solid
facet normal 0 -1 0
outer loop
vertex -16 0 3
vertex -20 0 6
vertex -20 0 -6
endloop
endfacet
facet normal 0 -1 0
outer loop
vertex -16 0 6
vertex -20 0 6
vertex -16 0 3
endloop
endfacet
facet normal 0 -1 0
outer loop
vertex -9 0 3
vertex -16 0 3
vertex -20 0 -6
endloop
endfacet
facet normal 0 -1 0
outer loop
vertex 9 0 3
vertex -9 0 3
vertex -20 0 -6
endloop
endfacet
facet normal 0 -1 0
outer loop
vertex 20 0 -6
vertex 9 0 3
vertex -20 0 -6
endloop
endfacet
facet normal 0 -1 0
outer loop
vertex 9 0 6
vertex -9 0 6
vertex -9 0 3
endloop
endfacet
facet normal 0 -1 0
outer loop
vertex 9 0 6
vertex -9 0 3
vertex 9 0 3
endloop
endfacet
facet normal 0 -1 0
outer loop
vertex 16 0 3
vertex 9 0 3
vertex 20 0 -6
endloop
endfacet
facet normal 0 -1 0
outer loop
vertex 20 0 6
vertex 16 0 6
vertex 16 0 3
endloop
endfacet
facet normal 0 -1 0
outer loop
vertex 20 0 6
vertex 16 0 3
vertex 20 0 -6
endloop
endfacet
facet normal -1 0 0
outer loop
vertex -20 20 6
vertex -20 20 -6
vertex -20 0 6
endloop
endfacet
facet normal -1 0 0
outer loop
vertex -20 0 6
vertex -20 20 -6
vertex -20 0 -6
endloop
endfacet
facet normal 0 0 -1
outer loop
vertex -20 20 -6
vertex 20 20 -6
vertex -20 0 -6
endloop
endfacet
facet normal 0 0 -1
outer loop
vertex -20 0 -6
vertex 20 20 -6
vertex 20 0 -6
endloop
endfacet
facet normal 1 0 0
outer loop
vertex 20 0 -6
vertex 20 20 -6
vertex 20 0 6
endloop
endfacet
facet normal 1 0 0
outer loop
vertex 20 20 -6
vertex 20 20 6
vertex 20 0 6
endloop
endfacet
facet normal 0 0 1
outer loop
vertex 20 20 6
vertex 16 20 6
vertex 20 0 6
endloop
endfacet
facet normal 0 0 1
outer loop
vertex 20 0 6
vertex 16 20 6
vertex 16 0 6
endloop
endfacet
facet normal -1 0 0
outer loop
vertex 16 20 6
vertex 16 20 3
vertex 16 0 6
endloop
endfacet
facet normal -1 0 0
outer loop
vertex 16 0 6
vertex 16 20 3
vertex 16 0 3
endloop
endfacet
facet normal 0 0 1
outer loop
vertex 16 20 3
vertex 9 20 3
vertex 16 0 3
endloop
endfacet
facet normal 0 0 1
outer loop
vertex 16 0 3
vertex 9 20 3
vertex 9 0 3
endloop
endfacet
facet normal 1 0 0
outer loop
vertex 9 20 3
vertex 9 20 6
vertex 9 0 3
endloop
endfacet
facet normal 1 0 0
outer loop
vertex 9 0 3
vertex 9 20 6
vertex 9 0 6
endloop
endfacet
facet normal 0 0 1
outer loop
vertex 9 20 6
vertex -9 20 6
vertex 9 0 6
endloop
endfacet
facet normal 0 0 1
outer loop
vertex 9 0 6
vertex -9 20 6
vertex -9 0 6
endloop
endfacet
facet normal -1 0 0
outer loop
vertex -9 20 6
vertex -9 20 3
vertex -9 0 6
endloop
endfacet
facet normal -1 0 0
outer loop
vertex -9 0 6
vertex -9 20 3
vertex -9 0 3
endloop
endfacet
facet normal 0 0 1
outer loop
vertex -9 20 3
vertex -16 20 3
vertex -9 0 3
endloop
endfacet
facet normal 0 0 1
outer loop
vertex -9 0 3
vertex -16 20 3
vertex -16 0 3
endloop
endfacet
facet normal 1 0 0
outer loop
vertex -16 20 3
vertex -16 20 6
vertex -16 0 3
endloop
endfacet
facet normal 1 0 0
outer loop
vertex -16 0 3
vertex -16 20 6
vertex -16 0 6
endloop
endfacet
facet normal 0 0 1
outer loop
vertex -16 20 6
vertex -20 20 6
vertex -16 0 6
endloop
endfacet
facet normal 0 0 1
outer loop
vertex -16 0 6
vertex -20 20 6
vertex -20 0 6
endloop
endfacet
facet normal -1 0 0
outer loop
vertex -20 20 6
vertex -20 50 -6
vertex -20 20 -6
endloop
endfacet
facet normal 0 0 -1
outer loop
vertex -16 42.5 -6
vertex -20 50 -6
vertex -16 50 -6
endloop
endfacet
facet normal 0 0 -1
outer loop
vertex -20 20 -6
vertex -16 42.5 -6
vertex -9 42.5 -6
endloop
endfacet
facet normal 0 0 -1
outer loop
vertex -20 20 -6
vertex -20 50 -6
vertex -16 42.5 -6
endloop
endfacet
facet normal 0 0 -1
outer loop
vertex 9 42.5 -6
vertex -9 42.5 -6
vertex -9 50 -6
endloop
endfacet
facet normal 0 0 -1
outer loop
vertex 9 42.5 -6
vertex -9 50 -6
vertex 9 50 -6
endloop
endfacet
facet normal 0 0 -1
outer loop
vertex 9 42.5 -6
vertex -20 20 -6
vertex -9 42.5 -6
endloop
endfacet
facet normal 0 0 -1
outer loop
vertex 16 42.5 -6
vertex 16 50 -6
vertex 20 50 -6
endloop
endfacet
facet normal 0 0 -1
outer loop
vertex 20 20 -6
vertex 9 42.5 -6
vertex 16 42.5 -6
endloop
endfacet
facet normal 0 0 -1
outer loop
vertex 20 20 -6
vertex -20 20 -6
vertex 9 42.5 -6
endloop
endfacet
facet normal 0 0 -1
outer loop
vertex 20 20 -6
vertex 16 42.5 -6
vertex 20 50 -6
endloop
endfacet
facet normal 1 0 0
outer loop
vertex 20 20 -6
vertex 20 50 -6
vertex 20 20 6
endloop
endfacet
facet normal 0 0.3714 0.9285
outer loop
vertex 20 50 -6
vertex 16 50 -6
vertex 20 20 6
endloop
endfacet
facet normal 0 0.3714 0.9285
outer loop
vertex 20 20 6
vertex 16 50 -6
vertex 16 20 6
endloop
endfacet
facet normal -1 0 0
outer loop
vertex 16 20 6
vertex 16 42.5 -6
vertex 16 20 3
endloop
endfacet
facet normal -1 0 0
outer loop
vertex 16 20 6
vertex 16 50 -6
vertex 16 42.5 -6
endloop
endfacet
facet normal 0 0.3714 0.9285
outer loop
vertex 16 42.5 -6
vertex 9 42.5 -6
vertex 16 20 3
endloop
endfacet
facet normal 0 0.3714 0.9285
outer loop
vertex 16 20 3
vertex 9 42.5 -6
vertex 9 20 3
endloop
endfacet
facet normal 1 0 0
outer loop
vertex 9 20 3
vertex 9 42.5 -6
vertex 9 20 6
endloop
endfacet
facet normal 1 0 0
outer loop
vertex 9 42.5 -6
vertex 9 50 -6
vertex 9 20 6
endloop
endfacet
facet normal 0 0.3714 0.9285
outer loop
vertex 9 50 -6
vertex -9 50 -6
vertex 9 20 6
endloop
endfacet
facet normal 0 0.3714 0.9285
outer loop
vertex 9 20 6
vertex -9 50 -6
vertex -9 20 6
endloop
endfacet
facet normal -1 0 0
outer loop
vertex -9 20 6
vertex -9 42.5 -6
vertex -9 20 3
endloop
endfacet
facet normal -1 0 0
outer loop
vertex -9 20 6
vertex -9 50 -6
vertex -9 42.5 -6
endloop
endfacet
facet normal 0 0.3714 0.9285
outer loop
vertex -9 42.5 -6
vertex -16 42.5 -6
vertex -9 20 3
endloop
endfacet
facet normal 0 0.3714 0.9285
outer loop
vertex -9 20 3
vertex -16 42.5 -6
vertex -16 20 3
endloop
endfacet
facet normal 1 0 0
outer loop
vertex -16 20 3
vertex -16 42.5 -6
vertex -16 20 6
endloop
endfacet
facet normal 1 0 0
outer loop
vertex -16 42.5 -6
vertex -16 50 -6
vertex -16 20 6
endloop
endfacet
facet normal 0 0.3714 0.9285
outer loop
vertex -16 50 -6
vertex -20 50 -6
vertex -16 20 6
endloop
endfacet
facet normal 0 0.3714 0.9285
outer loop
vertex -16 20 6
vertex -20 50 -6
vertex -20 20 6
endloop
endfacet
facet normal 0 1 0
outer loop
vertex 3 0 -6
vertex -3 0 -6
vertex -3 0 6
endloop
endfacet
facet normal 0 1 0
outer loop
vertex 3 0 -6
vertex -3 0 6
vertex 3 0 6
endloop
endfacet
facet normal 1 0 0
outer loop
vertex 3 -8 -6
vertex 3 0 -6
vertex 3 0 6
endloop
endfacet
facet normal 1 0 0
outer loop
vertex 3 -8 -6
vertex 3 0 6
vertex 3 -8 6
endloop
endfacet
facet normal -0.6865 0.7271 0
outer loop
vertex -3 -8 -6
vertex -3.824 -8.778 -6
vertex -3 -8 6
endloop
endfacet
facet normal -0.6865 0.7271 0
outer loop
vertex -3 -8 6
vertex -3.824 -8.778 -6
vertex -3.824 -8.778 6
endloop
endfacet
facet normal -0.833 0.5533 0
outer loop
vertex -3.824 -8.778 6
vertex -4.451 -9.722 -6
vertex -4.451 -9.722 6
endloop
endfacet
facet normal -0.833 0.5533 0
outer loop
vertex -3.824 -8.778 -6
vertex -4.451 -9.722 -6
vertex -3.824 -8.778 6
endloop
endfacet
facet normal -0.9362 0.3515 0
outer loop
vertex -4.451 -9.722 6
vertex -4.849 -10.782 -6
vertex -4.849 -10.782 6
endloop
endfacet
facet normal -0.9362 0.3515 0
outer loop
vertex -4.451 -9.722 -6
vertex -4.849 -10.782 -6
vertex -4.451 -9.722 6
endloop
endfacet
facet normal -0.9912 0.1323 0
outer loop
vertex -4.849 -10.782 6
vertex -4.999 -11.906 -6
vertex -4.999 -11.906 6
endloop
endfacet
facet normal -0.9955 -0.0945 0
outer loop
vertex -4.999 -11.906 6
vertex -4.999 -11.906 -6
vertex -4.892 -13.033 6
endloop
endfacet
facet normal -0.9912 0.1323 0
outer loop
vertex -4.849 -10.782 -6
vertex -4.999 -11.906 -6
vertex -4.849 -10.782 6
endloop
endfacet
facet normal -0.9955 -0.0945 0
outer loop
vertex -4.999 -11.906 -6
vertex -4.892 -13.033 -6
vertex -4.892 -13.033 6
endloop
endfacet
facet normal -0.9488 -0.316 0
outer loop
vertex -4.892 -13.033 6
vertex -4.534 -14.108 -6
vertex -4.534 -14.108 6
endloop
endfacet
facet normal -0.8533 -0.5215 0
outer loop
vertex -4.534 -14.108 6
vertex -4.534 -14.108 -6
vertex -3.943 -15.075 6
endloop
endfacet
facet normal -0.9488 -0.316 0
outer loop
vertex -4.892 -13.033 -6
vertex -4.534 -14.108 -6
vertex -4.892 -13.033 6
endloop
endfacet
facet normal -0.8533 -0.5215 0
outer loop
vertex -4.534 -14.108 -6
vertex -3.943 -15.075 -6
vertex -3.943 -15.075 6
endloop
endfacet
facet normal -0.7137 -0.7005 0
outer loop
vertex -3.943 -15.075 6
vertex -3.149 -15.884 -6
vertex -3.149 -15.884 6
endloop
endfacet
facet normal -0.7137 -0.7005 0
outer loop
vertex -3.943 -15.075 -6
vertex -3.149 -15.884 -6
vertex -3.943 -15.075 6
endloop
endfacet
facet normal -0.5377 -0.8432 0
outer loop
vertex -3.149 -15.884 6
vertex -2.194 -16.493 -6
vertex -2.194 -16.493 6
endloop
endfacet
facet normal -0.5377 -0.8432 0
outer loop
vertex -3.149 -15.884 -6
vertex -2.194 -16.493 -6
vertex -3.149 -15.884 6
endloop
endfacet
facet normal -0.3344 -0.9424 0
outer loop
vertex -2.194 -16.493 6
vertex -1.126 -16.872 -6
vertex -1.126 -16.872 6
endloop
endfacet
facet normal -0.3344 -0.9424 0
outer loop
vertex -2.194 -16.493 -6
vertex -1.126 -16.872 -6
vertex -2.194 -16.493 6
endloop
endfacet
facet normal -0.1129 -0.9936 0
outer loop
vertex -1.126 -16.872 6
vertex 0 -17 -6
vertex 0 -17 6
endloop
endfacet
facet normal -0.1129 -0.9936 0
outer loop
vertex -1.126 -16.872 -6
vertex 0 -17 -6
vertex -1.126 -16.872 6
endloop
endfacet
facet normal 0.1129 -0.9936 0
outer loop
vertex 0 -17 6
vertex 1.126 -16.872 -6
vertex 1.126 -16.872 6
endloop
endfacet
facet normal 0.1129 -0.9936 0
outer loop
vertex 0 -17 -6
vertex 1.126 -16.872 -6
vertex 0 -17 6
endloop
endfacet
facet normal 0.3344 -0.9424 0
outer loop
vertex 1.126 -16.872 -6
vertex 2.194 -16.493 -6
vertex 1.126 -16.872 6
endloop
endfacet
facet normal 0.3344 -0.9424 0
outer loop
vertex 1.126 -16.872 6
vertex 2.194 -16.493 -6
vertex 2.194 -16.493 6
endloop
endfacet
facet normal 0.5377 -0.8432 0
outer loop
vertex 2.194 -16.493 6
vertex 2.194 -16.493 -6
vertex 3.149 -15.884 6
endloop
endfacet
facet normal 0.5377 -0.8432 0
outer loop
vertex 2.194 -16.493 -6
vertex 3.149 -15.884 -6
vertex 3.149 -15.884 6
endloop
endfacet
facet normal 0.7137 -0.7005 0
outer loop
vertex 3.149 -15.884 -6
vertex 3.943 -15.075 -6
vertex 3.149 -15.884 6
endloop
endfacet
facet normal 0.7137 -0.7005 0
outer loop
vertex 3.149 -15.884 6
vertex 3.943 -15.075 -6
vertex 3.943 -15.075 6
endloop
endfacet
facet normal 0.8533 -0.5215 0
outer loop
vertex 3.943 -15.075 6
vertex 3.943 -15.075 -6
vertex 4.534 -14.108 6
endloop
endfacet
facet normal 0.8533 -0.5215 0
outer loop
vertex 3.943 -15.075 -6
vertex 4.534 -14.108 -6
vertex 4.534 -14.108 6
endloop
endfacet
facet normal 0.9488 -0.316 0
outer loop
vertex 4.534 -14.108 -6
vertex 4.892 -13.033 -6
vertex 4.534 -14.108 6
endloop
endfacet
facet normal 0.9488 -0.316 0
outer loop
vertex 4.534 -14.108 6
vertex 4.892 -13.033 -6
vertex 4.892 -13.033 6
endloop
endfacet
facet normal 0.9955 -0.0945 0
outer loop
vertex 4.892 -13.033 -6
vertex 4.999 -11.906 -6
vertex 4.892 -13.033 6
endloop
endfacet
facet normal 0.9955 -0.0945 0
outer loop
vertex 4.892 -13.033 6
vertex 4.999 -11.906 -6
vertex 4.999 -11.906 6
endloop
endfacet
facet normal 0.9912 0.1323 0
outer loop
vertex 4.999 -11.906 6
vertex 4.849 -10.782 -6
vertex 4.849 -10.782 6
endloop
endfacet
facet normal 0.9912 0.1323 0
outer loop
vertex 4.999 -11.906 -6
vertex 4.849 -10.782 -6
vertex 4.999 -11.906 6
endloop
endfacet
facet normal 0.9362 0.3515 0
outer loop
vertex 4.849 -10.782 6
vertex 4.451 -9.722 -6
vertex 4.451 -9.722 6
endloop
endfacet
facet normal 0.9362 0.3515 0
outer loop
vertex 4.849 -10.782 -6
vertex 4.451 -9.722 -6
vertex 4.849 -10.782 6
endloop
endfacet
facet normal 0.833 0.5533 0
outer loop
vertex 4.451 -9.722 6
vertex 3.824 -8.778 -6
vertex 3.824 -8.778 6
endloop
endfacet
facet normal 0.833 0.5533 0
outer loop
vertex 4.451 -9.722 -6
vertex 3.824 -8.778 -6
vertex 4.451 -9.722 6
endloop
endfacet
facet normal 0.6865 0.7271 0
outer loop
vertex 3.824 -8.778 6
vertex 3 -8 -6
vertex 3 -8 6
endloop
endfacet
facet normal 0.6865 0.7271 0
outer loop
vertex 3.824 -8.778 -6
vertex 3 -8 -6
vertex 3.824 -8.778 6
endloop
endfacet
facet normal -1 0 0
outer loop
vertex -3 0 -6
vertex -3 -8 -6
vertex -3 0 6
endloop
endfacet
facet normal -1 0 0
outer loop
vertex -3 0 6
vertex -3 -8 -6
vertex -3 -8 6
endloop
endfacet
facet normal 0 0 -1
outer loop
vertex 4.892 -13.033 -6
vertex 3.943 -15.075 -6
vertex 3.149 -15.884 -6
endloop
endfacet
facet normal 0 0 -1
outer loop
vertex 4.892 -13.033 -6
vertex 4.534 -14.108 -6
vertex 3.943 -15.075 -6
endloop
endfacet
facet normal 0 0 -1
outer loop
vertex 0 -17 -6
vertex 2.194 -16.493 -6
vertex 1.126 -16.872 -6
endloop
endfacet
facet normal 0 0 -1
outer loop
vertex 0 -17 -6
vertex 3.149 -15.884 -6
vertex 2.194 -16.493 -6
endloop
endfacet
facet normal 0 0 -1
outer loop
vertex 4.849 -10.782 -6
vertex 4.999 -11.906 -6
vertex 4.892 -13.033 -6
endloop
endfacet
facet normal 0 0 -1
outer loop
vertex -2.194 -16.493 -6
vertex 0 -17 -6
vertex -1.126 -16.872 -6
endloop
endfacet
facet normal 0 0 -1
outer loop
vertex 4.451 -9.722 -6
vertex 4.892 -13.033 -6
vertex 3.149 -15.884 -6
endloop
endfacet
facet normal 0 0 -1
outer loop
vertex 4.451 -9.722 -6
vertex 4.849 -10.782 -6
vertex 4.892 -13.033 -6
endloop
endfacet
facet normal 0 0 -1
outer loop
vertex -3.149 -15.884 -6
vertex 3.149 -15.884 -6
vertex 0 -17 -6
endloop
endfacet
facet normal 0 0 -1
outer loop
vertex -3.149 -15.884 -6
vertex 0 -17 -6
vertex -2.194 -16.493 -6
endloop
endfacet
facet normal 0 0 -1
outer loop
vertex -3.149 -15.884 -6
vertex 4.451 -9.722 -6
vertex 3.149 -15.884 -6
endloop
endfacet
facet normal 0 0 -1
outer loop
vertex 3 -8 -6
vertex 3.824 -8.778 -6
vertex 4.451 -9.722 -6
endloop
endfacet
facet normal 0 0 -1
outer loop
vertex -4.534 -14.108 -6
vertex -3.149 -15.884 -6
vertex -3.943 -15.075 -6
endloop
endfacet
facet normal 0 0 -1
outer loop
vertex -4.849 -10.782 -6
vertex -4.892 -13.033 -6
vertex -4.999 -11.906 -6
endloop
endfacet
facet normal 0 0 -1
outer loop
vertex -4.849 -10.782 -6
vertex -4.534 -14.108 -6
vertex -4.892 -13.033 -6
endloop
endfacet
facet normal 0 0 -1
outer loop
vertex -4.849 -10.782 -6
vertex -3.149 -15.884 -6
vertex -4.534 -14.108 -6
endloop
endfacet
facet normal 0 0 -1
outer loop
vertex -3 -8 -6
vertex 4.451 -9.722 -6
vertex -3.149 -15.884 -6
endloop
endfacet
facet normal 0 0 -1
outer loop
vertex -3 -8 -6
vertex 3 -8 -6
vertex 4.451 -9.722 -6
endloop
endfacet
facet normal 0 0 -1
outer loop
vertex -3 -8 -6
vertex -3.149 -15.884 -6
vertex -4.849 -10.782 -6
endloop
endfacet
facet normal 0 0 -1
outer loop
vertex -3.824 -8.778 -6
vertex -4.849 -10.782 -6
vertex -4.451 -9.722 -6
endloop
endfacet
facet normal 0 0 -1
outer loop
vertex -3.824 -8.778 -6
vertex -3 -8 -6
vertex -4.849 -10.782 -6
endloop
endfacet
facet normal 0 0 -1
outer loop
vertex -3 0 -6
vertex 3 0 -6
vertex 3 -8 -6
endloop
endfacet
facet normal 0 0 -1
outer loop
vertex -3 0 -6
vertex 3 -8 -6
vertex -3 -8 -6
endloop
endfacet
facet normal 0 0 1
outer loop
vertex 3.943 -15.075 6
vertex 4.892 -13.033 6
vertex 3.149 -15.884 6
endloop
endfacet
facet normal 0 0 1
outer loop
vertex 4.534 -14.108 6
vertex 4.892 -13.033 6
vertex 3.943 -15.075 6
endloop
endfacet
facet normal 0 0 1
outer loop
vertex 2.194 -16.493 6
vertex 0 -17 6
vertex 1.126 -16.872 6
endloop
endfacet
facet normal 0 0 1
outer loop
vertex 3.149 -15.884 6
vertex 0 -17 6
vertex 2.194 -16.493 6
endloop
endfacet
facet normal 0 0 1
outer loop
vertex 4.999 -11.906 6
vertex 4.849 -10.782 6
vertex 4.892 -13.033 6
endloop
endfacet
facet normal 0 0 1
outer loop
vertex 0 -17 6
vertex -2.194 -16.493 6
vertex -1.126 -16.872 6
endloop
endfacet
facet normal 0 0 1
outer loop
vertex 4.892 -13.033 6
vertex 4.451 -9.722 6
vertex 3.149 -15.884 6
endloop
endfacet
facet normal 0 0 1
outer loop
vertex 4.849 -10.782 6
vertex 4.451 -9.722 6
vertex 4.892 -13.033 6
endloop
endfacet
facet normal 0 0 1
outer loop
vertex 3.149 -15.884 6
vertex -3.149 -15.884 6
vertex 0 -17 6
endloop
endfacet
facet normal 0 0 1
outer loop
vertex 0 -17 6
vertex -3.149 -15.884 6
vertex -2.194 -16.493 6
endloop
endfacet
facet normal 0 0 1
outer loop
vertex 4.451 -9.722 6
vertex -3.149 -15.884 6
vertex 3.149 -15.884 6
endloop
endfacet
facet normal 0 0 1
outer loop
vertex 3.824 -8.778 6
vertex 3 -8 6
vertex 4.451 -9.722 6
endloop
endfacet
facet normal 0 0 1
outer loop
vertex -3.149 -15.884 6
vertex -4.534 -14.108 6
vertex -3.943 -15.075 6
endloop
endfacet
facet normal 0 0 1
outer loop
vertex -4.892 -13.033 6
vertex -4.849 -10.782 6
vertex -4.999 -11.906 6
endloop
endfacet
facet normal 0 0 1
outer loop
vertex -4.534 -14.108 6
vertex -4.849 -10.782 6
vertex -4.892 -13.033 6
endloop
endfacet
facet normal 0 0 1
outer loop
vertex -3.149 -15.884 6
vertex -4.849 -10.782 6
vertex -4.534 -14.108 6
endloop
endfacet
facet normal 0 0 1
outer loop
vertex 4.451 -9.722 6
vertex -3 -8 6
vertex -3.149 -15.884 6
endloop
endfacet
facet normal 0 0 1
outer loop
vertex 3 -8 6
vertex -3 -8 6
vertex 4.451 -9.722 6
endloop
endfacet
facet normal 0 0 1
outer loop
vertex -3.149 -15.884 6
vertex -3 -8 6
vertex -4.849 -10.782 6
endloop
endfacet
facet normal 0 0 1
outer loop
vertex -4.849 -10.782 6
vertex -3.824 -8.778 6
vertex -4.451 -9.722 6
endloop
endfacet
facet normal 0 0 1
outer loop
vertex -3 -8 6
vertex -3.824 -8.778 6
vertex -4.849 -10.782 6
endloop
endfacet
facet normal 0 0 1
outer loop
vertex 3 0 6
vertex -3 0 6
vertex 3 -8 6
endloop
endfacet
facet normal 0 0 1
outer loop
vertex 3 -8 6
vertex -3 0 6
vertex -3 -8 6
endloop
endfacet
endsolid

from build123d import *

# Parameters (mm, degrees)
SKETCH002_W  = 40
SKETCH002_H  = 12
POCKET_DEPTH = 50.001
PAD_DEPTH    = 6


with BuildPart() as body:
    # AdditivePipe: sweep along a path in Sketch
    with BuildLine(Plane.YZ) as additivepipe_path:
        Line((0, 0), (20, 0))
        Line((20, 0), (50, -12))
    # Sketch001 → AdditivePipe (sweep)
    with BuildSketch(Plane.XZ):
        Polygon((-20, 6), (-20, -6), (20, -6), (20, 6), (16, 6), (16, 3), (9, 3), (9, 6), (-9, 6), (-9, 3), (-16, 3), (-16, 6), align=None)
    sweep(path=additivepipe_path.line)

    # Sketch002 → Pocket (cut, through all)
    with BuildSketch(Plane.XZ):
        with Locations((0, -12)):
            Rectangle(SKETCH002_W, SKETCH002_H)
    extrude(amount=-POCKET_DEPTH, mode=Mode.SUBTRACT)


with BuildPart() as body001:
    # Sketch003 → Pad (new body, symmetric)
    with BuildSketch(Plane.XY):
        with BuildLine():
            Line((-3, 0), (3, 0))
            Line((3, 0), (3, -8))
            ThreePointArc((-3, -8), (0, -17), (3, -8))
            Line((-3, 0), (-3, -8))
        make_face()
    extrude(amount=PAD_DEPTH, both=True)


solid = Compound([body.part, body001.part])
